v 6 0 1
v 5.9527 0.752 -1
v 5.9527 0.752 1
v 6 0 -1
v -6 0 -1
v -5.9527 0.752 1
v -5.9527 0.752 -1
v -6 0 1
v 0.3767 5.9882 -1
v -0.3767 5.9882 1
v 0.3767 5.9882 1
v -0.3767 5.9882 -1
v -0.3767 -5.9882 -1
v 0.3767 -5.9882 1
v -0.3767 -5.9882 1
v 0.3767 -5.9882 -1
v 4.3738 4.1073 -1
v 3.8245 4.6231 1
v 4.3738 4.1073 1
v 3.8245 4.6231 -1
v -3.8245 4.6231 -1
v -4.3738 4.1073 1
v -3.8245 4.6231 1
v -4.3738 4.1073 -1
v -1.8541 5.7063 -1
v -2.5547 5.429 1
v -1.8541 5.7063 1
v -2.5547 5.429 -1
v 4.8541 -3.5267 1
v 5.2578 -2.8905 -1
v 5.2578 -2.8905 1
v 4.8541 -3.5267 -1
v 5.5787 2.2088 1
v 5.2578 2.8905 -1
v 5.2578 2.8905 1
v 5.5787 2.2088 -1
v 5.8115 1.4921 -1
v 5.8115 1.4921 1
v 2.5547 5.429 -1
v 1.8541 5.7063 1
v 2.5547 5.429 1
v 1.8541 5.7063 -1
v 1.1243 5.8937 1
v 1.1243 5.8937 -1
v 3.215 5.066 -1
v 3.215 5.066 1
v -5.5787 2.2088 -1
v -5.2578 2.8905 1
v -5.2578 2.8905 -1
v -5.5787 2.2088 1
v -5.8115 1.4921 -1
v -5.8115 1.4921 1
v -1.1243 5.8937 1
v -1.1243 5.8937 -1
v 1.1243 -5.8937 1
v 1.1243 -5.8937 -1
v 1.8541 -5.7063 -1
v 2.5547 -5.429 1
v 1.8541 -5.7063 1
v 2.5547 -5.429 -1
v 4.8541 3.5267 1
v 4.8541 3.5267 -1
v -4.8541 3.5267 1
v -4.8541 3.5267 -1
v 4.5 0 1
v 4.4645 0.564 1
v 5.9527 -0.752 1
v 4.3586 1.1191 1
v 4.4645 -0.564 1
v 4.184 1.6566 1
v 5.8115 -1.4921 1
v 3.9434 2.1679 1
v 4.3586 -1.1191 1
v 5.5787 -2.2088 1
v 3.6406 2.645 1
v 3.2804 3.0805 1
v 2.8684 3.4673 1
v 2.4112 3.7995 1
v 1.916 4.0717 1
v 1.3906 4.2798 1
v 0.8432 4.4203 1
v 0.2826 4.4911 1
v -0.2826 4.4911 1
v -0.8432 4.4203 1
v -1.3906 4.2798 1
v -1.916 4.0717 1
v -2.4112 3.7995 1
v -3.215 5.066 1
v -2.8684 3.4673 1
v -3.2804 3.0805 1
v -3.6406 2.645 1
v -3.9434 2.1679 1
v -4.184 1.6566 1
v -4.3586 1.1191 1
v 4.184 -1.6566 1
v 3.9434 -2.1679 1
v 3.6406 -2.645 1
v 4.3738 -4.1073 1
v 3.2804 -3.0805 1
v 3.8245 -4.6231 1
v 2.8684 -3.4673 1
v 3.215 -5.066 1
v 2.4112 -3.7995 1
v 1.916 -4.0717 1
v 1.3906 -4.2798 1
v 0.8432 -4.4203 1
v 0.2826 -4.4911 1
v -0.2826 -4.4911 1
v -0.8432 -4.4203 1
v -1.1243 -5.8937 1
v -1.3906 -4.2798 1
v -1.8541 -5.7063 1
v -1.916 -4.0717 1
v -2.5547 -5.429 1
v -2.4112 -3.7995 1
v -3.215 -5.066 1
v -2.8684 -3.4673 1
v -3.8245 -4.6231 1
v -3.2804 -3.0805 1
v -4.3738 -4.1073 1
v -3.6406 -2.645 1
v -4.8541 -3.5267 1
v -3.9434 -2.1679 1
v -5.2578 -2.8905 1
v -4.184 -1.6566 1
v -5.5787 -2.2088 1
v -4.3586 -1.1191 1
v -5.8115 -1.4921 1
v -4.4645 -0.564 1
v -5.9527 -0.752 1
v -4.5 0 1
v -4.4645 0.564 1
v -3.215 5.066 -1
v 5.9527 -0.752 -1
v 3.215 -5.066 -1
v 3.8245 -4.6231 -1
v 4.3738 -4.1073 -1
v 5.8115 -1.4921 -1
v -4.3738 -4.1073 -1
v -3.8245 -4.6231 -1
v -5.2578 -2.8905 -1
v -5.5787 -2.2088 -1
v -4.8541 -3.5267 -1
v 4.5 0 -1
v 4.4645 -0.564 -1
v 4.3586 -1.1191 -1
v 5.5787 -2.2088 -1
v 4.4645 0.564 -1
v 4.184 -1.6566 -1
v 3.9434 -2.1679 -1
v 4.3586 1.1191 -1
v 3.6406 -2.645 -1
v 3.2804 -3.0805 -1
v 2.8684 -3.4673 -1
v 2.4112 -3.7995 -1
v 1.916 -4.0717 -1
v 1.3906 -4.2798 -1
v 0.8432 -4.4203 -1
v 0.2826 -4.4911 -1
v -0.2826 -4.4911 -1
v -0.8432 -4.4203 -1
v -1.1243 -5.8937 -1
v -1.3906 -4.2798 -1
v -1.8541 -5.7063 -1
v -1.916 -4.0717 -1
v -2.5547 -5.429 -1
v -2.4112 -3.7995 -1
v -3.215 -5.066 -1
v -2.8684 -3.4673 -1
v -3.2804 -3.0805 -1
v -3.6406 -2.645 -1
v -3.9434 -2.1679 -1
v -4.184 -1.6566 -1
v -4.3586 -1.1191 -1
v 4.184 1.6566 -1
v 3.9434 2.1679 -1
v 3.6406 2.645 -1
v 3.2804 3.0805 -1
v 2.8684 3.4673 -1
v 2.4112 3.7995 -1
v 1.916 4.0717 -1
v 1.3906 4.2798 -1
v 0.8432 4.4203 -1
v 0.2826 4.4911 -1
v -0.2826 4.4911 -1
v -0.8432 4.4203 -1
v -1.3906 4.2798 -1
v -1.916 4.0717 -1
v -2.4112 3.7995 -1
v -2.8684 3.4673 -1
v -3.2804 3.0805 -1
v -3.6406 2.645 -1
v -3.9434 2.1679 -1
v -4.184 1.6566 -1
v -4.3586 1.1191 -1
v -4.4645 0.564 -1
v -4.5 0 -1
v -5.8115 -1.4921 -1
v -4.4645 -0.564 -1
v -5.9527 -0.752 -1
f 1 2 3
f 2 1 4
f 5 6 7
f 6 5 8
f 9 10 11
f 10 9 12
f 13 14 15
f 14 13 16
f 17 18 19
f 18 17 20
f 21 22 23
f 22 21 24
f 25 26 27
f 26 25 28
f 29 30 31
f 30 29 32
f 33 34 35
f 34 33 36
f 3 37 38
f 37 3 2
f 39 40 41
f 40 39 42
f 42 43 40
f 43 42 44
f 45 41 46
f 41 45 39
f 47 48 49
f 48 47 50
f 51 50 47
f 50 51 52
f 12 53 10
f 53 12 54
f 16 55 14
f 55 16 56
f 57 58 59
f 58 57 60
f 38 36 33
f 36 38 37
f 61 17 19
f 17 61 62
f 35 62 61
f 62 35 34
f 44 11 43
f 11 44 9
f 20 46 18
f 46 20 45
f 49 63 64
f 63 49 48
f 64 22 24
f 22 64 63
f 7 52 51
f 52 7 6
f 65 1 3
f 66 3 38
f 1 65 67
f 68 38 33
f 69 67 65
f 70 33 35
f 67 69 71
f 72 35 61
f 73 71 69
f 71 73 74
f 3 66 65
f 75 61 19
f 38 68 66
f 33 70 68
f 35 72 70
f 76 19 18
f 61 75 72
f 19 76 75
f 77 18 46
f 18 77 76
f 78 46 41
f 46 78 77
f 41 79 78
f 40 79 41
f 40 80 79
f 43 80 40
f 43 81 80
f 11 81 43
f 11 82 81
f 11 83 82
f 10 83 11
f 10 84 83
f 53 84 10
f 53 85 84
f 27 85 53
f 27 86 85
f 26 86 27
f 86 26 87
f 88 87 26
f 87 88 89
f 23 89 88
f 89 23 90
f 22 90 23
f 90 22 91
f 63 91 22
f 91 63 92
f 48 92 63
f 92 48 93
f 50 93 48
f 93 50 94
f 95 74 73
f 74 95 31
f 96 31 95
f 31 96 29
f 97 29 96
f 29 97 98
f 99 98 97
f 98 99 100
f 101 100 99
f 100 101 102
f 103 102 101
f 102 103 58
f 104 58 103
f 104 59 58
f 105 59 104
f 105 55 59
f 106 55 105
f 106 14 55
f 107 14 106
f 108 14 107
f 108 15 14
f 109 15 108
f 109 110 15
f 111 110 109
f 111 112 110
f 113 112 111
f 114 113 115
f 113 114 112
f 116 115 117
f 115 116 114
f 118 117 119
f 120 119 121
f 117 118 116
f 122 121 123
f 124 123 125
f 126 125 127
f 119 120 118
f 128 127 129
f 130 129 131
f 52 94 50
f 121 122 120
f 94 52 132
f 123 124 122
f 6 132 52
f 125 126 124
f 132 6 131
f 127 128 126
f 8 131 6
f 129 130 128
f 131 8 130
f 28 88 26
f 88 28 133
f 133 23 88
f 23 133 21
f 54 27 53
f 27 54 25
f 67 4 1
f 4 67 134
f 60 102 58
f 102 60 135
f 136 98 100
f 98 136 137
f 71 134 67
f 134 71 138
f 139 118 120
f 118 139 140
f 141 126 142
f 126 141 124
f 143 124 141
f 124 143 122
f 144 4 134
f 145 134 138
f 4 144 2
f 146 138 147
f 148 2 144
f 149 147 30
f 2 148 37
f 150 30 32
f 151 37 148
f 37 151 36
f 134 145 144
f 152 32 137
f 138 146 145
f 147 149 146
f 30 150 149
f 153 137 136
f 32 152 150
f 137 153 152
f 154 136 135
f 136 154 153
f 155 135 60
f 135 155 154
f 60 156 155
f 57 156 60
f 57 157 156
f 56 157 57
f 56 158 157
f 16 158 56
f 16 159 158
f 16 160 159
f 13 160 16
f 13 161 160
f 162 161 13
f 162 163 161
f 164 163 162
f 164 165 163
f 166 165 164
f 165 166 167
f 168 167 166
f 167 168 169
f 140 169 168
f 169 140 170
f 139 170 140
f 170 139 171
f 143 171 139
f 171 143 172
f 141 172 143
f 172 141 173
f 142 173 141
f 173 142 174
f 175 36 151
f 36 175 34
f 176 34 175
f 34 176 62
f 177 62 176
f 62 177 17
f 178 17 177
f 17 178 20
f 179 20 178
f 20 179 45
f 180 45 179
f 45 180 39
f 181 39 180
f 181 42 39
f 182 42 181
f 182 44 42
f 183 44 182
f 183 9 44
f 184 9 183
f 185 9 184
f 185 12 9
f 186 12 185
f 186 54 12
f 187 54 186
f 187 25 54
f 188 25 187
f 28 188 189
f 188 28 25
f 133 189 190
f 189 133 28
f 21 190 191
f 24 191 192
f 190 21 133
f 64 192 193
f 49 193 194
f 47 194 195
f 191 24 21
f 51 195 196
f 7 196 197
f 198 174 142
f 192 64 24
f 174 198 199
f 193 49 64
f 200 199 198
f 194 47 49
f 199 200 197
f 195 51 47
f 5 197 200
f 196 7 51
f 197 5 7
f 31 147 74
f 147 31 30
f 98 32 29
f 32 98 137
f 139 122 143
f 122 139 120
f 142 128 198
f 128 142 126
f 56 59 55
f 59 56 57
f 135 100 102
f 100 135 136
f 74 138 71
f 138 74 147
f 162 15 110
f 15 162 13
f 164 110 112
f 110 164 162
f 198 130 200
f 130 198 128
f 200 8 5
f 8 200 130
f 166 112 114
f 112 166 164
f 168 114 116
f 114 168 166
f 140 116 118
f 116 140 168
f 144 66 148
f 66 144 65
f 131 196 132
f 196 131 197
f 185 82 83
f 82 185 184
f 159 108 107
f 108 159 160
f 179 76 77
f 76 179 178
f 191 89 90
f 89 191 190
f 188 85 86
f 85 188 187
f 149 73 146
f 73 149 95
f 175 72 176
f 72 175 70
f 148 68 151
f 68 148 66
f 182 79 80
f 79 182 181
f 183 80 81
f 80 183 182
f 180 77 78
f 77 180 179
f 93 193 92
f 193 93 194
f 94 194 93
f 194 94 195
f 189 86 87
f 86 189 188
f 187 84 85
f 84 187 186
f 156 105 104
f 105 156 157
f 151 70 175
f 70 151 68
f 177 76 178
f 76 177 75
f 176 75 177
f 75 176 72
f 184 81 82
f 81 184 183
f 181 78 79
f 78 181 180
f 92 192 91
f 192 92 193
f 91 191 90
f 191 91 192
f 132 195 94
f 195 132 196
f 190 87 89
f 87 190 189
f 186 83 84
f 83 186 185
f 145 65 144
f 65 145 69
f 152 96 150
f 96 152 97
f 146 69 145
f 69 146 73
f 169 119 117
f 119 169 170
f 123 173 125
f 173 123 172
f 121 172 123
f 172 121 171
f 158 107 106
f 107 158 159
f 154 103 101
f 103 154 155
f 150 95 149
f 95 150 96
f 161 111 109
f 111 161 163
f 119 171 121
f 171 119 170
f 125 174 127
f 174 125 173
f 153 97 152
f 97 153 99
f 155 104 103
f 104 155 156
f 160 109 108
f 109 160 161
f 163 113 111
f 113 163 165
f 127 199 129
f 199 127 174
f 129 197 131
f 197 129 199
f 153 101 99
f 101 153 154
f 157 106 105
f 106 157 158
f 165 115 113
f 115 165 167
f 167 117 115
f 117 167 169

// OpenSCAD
$fn = 50;


difference() {
	union() {
		translate(v = [0, 0, -1.0000000000]) {
			cylinder(h = 2, r = 6.0000000000);
		}
	}
	union() {
		translate(v = [0, 0, -100.0000000000]) {
			cylinder(h = 200, r = 4.5000000000);
		}
	}
}
